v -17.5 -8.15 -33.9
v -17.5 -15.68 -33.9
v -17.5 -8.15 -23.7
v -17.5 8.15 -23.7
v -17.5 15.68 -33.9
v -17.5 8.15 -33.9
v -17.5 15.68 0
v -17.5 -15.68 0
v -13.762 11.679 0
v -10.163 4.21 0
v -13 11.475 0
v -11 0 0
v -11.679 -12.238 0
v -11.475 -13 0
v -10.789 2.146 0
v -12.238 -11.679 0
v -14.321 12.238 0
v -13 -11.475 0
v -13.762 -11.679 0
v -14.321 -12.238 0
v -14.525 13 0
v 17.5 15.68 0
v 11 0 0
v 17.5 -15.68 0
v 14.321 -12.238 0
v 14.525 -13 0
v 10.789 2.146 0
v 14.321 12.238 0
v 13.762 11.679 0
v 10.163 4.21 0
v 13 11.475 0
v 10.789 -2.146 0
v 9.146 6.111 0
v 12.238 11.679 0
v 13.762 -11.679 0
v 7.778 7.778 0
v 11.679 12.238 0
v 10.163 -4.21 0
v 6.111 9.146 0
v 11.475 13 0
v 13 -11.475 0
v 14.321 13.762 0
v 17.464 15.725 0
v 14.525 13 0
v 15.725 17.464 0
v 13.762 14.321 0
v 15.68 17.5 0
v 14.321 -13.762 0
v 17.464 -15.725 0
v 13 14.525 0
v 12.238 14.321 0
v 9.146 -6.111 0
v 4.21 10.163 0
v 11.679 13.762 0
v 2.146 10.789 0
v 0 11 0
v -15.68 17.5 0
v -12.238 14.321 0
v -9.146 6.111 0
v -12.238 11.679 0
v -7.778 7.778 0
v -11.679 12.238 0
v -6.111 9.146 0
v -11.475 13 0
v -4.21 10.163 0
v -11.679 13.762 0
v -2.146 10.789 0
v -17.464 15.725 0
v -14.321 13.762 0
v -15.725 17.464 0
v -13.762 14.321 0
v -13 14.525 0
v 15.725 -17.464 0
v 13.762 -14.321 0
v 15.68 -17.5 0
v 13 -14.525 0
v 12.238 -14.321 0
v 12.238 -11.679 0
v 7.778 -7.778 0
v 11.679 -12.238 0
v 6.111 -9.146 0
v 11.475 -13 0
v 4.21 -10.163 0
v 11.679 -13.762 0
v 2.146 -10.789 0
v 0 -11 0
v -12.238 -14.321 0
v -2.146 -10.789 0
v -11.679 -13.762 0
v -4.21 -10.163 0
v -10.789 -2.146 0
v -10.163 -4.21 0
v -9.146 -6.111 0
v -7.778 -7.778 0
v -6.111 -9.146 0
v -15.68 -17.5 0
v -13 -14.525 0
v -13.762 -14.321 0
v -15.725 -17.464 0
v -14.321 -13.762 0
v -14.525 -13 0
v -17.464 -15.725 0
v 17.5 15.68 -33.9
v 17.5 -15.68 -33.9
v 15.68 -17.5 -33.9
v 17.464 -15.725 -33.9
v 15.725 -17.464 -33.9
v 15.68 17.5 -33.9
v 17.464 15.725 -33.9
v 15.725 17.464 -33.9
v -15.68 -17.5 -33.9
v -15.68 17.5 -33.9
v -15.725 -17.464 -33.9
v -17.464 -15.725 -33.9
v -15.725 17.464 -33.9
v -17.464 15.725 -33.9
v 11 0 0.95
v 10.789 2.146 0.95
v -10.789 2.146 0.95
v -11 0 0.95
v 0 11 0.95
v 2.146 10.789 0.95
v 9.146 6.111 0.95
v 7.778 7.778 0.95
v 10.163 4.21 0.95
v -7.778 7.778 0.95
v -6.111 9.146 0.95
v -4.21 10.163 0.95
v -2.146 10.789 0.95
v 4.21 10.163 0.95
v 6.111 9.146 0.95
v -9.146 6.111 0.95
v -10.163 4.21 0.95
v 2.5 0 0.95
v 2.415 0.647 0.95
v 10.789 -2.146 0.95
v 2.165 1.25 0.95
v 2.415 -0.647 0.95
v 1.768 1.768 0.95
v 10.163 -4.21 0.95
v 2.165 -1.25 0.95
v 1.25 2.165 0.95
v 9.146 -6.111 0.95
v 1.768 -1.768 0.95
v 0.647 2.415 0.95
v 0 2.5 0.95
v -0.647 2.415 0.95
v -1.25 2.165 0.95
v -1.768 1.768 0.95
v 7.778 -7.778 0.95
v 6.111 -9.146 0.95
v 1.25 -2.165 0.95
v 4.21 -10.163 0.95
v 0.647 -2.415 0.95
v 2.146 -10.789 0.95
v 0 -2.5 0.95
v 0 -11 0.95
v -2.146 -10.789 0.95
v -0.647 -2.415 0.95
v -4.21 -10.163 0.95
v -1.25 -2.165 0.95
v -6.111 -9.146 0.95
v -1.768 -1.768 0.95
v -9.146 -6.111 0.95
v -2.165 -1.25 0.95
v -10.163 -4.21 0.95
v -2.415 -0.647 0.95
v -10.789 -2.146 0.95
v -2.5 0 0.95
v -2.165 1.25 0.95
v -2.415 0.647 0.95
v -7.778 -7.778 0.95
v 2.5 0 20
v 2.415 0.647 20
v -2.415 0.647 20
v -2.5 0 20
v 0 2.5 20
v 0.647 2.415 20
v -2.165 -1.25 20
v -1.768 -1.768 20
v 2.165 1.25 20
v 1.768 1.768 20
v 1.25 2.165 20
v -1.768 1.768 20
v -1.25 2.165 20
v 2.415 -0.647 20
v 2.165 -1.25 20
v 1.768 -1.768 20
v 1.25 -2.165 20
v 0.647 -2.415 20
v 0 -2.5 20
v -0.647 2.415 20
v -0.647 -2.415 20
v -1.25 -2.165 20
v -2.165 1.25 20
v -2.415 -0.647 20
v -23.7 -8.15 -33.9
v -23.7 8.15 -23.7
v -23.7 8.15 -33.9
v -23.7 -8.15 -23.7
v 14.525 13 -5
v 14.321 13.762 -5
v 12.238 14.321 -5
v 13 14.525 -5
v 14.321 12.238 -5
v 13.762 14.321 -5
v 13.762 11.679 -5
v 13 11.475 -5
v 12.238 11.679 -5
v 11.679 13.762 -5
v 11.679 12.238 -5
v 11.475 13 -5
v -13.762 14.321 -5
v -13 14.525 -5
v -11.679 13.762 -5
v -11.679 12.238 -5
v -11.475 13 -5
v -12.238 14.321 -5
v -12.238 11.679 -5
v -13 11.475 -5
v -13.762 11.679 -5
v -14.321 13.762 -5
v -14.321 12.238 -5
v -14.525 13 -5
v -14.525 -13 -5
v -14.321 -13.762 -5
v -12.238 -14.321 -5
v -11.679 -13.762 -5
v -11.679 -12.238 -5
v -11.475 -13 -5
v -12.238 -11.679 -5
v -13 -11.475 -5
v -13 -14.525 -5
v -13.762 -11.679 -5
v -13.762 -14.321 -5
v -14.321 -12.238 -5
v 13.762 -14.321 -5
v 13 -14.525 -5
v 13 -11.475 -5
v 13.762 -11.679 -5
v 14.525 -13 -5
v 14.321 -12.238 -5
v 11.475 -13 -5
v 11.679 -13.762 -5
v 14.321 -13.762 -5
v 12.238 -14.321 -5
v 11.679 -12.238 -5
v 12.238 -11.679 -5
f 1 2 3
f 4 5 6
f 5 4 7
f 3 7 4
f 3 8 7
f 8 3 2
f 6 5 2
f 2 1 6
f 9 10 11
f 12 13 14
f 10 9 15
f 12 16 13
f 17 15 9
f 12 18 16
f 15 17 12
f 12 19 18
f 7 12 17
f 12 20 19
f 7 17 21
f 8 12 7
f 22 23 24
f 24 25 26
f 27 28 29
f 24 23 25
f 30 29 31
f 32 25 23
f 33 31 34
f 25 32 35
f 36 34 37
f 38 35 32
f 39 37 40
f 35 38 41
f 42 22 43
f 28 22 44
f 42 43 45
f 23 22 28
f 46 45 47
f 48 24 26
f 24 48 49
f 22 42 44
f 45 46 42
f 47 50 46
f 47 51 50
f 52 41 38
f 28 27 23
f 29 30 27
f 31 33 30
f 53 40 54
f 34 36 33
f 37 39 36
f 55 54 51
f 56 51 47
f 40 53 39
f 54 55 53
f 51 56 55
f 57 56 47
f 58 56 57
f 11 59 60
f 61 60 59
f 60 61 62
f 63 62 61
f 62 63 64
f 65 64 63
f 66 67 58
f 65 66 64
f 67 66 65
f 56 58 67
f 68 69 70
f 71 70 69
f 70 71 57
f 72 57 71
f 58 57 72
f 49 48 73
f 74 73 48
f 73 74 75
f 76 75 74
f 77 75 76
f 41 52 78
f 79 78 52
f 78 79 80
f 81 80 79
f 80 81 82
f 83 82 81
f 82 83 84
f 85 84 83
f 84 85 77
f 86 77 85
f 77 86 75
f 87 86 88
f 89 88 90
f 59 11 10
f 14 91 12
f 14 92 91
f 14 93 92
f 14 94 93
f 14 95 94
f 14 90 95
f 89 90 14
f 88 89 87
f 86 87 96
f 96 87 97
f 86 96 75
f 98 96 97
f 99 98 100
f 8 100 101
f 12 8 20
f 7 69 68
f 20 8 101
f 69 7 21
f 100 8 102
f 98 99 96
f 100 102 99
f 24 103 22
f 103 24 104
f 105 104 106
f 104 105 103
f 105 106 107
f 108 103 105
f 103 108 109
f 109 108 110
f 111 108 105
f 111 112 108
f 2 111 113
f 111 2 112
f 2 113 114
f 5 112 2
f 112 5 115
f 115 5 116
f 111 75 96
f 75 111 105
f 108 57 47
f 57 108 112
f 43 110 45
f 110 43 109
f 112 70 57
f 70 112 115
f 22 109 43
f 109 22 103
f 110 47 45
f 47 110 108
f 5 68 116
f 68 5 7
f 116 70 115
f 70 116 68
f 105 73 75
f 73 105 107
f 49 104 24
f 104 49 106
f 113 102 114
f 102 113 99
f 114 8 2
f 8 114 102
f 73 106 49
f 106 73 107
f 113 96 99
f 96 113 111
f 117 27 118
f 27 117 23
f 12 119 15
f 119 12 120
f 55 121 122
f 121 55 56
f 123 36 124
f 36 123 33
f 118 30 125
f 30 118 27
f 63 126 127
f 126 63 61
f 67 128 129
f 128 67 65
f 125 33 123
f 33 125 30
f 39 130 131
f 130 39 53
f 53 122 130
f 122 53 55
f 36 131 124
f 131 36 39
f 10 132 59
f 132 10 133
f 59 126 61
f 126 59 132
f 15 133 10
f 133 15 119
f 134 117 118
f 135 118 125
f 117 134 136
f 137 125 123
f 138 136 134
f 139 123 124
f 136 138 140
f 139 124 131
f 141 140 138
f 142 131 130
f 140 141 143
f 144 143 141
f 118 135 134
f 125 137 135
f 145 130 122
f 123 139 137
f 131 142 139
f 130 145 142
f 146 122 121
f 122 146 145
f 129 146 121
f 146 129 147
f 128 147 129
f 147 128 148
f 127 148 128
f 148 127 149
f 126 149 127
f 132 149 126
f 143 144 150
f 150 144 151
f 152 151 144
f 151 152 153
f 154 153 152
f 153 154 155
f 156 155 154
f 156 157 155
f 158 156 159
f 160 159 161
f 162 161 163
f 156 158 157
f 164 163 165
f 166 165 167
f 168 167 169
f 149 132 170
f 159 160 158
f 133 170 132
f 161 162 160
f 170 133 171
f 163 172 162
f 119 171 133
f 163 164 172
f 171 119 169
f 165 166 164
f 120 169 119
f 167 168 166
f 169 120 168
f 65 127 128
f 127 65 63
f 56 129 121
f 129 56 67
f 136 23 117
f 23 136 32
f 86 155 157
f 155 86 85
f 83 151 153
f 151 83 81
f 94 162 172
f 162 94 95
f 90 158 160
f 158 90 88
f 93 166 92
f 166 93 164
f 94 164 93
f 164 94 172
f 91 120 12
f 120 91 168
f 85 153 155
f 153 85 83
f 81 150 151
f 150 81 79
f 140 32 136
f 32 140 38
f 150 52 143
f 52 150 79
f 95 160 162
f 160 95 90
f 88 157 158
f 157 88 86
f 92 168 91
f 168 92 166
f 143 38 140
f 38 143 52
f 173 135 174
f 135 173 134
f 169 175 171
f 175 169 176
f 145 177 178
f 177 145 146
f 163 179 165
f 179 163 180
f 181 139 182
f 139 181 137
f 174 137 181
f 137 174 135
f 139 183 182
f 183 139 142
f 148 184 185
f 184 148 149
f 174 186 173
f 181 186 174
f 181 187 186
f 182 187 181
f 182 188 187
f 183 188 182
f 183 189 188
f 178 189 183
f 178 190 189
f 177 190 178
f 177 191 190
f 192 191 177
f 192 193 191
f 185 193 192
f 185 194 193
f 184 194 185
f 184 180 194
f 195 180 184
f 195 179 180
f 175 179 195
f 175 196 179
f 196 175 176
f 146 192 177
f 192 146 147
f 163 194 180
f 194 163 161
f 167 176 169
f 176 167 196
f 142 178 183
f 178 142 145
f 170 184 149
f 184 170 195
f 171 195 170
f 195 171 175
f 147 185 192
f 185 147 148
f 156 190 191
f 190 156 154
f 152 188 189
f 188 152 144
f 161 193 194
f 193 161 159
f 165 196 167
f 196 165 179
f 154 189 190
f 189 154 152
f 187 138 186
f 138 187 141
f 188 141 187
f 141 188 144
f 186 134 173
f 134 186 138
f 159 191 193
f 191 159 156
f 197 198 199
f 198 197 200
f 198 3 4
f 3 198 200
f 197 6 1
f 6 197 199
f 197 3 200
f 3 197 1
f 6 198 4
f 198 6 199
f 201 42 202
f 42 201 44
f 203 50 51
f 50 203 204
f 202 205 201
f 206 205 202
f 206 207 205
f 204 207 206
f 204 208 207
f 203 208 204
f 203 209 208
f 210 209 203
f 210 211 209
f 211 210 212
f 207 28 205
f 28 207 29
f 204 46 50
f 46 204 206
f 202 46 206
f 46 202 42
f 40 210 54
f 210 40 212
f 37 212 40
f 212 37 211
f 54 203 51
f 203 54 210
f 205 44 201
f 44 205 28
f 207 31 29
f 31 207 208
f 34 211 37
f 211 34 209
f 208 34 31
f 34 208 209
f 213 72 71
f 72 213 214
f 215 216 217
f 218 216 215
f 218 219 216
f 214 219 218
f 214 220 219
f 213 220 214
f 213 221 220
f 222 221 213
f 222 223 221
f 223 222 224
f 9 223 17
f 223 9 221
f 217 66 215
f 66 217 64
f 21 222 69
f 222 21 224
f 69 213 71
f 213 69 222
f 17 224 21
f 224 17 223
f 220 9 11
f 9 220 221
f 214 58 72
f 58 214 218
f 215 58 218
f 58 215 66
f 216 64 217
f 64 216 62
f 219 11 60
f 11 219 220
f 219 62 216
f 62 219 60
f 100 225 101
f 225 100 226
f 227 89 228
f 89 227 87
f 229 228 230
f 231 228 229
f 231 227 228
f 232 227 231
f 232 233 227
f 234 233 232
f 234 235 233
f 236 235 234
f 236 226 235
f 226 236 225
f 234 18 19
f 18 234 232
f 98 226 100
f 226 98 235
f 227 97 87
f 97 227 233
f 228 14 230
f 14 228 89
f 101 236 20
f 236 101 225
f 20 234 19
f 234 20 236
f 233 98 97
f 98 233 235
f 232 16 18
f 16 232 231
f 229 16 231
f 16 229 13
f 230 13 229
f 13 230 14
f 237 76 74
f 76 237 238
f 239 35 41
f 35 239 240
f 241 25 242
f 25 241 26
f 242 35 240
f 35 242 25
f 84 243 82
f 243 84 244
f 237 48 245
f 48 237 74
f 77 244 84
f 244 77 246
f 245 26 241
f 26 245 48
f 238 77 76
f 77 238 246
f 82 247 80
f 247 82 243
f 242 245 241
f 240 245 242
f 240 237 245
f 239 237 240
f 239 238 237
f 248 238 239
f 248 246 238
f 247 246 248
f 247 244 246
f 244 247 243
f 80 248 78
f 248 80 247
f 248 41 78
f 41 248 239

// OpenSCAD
// Increase this if your slicer or printer make holes too tight.
extra_radius = 0.1;

// Major diameter of metric 3mm thread.
m3_radius = 2.85/2 + extra_radius;

// Placement for the NEMA14 stepper motors.
motor_length = 33.9;

module nema14() {

  difference() {

    union() {

      // House
      translate([0, 0, -motor_length / 2]) intersection() {
        cube(size=[35, 35, motor_length], center=true);
        cylinder(r=23.5, h=motor_length + 1, center=true, $fn=60);
      }

      // Top circle
      cylinder(r=22/2, h=1.9, center=true, $fn=32);

      // Rod
      translate([0,0,-1]) cylinder(r=2.5, h=53.9-motor_length+1, center=false, $fn=24);

      // Plug
      translate([-(35/2)-(6.2/2)+1, 0, -motor_length+(10.2/2)]) cube(size=[6.2+(1*2), 16.3, 10.2], center=true);
    }

    // Holes for bolts
    for (a = [0:90:359]) {
      rotate([0, 0, a]) translate([26/2, 26/2, 0])
        cylinder(r=m3_radius, h=10, center=true, $fn=12);
    }

  }

}

nema14();
